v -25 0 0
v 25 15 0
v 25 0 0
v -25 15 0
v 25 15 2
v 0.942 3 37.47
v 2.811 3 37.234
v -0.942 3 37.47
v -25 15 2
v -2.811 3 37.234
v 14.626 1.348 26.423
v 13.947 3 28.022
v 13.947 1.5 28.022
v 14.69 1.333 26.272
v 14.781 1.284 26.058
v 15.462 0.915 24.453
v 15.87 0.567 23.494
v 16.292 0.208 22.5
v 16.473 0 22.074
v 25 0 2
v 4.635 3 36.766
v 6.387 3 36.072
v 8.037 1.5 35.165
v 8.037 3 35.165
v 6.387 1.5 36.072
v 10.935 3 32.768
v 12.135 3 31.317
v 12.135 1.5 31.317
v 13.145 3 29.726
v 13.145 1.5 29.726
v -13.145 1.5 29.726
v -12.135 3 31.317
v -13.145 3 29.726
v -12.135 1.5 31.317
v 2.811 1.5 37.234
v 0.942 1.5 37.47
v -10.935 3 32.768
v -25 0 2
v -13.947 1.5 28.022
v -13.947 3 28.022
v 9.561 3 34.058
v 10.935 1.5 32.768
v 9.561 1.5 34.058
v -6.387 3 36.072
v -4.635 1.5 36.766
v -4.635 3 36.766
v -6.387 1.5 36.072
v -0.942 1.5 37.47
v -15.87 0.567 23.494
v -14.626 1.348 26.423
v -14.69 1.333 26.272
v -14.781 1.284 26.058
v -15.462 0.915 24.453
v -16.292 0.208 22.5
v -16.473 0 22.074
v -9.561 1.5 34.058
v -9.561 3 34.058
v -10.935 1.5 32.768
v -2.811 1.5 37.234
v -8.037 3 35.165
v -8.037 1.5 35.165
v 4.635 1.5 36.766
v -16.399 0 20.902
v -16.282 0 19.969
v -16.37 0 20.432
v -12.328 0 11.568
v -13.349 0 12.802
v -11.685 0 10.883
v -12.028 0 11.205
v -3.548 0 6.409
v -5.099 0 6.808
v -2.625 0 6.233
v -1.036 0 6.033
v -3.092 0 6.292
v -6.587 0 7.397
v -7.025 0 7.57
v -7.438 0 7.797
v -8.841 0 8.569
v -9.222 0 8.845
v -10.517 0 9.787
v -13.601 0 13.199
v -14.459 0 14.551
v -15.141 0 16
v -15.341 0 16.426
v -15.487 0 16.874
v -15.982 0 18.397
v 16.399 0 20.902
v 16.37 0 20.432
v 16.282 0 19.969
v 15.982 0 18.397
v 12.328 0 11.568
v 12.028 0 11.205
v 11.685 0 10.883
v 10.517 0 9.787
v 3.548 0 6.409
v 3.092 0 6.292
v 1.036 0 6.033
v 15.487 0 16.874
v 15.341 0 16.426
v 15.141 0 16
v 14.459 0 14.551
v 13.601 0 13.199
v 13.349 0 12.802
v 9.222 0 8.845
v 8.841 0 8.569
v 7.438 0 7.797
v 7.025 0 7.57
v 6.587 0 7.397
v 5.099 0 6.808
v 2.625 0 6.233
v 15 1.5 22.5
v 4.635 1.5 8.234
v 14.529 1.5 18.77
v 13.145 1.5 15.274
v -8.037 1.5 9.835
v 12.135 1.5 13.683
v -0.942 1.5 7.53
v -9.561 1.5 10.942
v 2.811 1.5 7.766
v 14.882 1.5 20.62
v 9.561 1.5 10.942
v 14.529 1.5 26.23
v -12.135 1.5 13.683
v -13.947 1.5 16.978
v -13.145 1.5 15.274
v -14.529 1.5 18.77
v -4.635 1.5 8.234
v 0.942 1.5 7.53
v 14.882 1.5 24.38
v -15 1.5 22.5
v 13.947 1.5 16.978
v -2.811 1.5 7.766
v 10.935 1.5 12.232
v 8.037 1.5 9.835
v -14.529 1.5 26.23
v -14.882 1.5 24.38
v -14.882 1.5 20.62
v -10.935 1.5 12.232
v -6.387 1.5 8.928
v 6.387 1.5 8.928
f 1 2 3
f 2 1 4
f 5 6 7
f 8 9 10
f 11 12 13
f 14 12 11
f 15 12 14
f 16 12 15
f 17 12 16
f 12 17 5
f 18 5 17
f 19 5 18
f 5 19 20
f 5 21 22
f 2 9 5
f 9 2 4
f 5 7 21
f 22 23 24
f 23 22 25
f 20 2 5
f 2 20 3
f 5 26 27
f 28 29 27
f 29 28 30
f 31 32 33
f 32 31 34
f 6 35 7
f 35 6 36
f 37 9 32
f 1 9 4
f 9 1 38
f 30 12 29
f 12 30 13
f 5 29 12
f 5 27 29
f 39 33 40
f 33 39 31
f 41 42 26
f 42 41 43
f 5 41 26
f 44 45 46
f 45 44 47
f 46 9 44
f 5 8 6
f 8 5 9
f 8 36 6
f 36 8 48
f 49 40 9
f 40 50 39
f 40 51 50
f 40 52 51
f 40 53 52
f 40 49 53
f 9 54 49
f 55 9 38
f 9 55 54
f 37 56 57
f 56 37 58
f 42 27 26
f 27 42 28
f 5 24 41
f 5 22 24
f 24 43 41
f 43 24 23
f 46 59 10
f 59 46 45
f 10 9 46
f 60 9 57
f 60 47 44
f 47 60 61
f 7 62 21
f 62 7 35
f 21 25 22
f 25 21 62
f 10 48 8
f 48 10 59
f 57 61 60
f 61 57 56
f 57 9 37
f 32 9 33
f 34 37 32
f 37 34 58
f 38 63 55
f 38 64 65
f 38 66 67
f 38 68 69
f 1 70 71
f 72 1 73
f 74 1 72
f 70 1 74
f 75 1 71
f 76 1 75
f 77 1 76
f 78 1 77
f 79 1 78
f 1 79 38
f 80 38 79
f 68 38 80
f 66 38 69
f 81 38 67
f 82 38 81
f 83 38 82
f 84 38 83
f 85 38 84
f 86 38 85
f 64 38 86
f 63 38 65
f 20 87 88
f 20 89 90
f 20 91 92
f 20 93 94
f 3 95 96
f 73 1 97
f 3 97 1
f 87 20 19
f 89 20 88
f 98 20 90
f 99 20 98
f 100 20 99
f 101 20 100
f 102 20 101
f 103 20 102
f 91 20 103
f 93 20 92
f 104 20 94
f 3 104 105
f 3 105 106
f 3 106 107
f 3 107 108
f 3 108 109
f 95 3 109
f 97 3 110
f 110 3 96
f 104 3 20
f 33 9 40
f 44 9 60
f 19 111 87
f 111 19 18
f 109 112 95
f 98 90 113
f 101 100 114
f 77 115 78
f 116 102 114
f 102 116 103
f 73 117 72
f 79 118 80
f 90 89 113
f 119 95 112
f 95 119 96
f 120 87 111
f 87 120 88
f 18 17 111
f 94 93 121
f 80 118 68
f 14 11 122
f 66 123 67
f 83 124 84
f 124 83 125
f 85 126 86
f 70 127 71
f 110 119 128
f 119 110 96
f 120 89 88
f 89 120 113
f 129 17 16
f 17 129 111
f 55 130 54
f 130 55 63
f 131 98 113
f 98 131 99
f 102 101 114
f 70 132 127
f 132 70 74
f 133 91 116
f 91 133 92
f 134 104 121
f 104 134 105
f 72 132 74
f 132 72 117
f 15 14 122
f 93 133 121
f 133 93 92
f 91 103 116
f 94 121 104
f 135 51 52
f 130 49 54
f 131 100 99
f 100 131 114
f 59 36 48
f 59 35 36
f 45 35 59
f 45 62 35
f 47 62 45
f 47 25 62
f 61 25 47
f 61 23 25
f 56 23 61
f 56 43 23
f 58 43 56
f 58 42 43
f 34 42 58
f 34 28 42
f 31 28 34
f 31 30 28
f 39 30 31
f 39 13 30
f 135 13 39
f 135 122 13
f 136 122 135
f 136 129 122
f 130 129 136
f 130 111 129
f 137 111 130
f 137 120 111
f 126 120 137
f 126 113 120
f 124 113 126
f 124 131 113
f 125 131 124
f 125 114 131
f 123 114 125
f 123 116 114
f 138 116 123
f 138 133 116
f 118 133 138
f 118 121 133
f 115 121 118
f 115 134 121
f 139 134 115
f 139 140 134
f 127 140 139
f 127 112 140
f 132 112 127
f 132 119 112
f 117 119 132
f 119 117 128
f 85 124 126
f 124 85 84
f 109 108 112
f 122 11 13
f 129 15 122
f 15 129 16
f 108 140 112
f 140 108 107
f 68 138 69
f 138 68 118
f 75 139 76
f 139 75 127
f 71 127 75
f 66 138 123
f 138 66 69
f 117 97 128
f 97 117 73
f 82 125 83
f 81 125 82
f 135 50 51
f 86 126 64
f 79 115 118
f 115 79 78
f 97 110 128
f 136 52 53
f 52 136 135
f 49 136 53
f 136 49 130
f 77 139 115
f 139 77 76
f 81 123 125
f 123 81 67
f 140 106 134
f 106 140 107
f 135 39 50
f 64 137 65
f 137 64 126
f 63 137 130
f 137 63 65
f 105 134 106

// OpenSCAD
/* Computer Mirror Mount */
// Brian Khuu 2023

/* [Mounting Strip Base] Command Strip dimentions is typically 50mmx15mm */
// length of mounting strip base
sx = 50 ;
// widith of mounting strip base
sy = 15 ;
// height of mounting strip base
sh = 2  ;

/* [Car Blindspot Mirror]  */
// Width of mirror
mirrorWidth = 65;
// Height of mirror
mirrorHeight = 45;
// Mount Width
mirrorMountWidth = 30 ;

/* [Quality]  */
$fn = 50;

difference()
{
    hull() 
    {
        translate([-sx/2  , 0  , 0])
            cube([sx,sy,sh]);
        translate([0, 0, mirrorHeight/2])
            rotate([-90,0,0])
            cylinder(r=mirrorMountWidth/2, h=3);
    }
    translate([0, -0.5, mirrorHeight/2])
        rotate([-90,0,0])
        cylinder(d1=mirrorMountWidth+4,d2=mirrorMountWidth, h=2);
}

translate([-mirrorWidth/2  , -5  , 0])
    %cube([mirrorWidth,1,mirrorHeight]);
